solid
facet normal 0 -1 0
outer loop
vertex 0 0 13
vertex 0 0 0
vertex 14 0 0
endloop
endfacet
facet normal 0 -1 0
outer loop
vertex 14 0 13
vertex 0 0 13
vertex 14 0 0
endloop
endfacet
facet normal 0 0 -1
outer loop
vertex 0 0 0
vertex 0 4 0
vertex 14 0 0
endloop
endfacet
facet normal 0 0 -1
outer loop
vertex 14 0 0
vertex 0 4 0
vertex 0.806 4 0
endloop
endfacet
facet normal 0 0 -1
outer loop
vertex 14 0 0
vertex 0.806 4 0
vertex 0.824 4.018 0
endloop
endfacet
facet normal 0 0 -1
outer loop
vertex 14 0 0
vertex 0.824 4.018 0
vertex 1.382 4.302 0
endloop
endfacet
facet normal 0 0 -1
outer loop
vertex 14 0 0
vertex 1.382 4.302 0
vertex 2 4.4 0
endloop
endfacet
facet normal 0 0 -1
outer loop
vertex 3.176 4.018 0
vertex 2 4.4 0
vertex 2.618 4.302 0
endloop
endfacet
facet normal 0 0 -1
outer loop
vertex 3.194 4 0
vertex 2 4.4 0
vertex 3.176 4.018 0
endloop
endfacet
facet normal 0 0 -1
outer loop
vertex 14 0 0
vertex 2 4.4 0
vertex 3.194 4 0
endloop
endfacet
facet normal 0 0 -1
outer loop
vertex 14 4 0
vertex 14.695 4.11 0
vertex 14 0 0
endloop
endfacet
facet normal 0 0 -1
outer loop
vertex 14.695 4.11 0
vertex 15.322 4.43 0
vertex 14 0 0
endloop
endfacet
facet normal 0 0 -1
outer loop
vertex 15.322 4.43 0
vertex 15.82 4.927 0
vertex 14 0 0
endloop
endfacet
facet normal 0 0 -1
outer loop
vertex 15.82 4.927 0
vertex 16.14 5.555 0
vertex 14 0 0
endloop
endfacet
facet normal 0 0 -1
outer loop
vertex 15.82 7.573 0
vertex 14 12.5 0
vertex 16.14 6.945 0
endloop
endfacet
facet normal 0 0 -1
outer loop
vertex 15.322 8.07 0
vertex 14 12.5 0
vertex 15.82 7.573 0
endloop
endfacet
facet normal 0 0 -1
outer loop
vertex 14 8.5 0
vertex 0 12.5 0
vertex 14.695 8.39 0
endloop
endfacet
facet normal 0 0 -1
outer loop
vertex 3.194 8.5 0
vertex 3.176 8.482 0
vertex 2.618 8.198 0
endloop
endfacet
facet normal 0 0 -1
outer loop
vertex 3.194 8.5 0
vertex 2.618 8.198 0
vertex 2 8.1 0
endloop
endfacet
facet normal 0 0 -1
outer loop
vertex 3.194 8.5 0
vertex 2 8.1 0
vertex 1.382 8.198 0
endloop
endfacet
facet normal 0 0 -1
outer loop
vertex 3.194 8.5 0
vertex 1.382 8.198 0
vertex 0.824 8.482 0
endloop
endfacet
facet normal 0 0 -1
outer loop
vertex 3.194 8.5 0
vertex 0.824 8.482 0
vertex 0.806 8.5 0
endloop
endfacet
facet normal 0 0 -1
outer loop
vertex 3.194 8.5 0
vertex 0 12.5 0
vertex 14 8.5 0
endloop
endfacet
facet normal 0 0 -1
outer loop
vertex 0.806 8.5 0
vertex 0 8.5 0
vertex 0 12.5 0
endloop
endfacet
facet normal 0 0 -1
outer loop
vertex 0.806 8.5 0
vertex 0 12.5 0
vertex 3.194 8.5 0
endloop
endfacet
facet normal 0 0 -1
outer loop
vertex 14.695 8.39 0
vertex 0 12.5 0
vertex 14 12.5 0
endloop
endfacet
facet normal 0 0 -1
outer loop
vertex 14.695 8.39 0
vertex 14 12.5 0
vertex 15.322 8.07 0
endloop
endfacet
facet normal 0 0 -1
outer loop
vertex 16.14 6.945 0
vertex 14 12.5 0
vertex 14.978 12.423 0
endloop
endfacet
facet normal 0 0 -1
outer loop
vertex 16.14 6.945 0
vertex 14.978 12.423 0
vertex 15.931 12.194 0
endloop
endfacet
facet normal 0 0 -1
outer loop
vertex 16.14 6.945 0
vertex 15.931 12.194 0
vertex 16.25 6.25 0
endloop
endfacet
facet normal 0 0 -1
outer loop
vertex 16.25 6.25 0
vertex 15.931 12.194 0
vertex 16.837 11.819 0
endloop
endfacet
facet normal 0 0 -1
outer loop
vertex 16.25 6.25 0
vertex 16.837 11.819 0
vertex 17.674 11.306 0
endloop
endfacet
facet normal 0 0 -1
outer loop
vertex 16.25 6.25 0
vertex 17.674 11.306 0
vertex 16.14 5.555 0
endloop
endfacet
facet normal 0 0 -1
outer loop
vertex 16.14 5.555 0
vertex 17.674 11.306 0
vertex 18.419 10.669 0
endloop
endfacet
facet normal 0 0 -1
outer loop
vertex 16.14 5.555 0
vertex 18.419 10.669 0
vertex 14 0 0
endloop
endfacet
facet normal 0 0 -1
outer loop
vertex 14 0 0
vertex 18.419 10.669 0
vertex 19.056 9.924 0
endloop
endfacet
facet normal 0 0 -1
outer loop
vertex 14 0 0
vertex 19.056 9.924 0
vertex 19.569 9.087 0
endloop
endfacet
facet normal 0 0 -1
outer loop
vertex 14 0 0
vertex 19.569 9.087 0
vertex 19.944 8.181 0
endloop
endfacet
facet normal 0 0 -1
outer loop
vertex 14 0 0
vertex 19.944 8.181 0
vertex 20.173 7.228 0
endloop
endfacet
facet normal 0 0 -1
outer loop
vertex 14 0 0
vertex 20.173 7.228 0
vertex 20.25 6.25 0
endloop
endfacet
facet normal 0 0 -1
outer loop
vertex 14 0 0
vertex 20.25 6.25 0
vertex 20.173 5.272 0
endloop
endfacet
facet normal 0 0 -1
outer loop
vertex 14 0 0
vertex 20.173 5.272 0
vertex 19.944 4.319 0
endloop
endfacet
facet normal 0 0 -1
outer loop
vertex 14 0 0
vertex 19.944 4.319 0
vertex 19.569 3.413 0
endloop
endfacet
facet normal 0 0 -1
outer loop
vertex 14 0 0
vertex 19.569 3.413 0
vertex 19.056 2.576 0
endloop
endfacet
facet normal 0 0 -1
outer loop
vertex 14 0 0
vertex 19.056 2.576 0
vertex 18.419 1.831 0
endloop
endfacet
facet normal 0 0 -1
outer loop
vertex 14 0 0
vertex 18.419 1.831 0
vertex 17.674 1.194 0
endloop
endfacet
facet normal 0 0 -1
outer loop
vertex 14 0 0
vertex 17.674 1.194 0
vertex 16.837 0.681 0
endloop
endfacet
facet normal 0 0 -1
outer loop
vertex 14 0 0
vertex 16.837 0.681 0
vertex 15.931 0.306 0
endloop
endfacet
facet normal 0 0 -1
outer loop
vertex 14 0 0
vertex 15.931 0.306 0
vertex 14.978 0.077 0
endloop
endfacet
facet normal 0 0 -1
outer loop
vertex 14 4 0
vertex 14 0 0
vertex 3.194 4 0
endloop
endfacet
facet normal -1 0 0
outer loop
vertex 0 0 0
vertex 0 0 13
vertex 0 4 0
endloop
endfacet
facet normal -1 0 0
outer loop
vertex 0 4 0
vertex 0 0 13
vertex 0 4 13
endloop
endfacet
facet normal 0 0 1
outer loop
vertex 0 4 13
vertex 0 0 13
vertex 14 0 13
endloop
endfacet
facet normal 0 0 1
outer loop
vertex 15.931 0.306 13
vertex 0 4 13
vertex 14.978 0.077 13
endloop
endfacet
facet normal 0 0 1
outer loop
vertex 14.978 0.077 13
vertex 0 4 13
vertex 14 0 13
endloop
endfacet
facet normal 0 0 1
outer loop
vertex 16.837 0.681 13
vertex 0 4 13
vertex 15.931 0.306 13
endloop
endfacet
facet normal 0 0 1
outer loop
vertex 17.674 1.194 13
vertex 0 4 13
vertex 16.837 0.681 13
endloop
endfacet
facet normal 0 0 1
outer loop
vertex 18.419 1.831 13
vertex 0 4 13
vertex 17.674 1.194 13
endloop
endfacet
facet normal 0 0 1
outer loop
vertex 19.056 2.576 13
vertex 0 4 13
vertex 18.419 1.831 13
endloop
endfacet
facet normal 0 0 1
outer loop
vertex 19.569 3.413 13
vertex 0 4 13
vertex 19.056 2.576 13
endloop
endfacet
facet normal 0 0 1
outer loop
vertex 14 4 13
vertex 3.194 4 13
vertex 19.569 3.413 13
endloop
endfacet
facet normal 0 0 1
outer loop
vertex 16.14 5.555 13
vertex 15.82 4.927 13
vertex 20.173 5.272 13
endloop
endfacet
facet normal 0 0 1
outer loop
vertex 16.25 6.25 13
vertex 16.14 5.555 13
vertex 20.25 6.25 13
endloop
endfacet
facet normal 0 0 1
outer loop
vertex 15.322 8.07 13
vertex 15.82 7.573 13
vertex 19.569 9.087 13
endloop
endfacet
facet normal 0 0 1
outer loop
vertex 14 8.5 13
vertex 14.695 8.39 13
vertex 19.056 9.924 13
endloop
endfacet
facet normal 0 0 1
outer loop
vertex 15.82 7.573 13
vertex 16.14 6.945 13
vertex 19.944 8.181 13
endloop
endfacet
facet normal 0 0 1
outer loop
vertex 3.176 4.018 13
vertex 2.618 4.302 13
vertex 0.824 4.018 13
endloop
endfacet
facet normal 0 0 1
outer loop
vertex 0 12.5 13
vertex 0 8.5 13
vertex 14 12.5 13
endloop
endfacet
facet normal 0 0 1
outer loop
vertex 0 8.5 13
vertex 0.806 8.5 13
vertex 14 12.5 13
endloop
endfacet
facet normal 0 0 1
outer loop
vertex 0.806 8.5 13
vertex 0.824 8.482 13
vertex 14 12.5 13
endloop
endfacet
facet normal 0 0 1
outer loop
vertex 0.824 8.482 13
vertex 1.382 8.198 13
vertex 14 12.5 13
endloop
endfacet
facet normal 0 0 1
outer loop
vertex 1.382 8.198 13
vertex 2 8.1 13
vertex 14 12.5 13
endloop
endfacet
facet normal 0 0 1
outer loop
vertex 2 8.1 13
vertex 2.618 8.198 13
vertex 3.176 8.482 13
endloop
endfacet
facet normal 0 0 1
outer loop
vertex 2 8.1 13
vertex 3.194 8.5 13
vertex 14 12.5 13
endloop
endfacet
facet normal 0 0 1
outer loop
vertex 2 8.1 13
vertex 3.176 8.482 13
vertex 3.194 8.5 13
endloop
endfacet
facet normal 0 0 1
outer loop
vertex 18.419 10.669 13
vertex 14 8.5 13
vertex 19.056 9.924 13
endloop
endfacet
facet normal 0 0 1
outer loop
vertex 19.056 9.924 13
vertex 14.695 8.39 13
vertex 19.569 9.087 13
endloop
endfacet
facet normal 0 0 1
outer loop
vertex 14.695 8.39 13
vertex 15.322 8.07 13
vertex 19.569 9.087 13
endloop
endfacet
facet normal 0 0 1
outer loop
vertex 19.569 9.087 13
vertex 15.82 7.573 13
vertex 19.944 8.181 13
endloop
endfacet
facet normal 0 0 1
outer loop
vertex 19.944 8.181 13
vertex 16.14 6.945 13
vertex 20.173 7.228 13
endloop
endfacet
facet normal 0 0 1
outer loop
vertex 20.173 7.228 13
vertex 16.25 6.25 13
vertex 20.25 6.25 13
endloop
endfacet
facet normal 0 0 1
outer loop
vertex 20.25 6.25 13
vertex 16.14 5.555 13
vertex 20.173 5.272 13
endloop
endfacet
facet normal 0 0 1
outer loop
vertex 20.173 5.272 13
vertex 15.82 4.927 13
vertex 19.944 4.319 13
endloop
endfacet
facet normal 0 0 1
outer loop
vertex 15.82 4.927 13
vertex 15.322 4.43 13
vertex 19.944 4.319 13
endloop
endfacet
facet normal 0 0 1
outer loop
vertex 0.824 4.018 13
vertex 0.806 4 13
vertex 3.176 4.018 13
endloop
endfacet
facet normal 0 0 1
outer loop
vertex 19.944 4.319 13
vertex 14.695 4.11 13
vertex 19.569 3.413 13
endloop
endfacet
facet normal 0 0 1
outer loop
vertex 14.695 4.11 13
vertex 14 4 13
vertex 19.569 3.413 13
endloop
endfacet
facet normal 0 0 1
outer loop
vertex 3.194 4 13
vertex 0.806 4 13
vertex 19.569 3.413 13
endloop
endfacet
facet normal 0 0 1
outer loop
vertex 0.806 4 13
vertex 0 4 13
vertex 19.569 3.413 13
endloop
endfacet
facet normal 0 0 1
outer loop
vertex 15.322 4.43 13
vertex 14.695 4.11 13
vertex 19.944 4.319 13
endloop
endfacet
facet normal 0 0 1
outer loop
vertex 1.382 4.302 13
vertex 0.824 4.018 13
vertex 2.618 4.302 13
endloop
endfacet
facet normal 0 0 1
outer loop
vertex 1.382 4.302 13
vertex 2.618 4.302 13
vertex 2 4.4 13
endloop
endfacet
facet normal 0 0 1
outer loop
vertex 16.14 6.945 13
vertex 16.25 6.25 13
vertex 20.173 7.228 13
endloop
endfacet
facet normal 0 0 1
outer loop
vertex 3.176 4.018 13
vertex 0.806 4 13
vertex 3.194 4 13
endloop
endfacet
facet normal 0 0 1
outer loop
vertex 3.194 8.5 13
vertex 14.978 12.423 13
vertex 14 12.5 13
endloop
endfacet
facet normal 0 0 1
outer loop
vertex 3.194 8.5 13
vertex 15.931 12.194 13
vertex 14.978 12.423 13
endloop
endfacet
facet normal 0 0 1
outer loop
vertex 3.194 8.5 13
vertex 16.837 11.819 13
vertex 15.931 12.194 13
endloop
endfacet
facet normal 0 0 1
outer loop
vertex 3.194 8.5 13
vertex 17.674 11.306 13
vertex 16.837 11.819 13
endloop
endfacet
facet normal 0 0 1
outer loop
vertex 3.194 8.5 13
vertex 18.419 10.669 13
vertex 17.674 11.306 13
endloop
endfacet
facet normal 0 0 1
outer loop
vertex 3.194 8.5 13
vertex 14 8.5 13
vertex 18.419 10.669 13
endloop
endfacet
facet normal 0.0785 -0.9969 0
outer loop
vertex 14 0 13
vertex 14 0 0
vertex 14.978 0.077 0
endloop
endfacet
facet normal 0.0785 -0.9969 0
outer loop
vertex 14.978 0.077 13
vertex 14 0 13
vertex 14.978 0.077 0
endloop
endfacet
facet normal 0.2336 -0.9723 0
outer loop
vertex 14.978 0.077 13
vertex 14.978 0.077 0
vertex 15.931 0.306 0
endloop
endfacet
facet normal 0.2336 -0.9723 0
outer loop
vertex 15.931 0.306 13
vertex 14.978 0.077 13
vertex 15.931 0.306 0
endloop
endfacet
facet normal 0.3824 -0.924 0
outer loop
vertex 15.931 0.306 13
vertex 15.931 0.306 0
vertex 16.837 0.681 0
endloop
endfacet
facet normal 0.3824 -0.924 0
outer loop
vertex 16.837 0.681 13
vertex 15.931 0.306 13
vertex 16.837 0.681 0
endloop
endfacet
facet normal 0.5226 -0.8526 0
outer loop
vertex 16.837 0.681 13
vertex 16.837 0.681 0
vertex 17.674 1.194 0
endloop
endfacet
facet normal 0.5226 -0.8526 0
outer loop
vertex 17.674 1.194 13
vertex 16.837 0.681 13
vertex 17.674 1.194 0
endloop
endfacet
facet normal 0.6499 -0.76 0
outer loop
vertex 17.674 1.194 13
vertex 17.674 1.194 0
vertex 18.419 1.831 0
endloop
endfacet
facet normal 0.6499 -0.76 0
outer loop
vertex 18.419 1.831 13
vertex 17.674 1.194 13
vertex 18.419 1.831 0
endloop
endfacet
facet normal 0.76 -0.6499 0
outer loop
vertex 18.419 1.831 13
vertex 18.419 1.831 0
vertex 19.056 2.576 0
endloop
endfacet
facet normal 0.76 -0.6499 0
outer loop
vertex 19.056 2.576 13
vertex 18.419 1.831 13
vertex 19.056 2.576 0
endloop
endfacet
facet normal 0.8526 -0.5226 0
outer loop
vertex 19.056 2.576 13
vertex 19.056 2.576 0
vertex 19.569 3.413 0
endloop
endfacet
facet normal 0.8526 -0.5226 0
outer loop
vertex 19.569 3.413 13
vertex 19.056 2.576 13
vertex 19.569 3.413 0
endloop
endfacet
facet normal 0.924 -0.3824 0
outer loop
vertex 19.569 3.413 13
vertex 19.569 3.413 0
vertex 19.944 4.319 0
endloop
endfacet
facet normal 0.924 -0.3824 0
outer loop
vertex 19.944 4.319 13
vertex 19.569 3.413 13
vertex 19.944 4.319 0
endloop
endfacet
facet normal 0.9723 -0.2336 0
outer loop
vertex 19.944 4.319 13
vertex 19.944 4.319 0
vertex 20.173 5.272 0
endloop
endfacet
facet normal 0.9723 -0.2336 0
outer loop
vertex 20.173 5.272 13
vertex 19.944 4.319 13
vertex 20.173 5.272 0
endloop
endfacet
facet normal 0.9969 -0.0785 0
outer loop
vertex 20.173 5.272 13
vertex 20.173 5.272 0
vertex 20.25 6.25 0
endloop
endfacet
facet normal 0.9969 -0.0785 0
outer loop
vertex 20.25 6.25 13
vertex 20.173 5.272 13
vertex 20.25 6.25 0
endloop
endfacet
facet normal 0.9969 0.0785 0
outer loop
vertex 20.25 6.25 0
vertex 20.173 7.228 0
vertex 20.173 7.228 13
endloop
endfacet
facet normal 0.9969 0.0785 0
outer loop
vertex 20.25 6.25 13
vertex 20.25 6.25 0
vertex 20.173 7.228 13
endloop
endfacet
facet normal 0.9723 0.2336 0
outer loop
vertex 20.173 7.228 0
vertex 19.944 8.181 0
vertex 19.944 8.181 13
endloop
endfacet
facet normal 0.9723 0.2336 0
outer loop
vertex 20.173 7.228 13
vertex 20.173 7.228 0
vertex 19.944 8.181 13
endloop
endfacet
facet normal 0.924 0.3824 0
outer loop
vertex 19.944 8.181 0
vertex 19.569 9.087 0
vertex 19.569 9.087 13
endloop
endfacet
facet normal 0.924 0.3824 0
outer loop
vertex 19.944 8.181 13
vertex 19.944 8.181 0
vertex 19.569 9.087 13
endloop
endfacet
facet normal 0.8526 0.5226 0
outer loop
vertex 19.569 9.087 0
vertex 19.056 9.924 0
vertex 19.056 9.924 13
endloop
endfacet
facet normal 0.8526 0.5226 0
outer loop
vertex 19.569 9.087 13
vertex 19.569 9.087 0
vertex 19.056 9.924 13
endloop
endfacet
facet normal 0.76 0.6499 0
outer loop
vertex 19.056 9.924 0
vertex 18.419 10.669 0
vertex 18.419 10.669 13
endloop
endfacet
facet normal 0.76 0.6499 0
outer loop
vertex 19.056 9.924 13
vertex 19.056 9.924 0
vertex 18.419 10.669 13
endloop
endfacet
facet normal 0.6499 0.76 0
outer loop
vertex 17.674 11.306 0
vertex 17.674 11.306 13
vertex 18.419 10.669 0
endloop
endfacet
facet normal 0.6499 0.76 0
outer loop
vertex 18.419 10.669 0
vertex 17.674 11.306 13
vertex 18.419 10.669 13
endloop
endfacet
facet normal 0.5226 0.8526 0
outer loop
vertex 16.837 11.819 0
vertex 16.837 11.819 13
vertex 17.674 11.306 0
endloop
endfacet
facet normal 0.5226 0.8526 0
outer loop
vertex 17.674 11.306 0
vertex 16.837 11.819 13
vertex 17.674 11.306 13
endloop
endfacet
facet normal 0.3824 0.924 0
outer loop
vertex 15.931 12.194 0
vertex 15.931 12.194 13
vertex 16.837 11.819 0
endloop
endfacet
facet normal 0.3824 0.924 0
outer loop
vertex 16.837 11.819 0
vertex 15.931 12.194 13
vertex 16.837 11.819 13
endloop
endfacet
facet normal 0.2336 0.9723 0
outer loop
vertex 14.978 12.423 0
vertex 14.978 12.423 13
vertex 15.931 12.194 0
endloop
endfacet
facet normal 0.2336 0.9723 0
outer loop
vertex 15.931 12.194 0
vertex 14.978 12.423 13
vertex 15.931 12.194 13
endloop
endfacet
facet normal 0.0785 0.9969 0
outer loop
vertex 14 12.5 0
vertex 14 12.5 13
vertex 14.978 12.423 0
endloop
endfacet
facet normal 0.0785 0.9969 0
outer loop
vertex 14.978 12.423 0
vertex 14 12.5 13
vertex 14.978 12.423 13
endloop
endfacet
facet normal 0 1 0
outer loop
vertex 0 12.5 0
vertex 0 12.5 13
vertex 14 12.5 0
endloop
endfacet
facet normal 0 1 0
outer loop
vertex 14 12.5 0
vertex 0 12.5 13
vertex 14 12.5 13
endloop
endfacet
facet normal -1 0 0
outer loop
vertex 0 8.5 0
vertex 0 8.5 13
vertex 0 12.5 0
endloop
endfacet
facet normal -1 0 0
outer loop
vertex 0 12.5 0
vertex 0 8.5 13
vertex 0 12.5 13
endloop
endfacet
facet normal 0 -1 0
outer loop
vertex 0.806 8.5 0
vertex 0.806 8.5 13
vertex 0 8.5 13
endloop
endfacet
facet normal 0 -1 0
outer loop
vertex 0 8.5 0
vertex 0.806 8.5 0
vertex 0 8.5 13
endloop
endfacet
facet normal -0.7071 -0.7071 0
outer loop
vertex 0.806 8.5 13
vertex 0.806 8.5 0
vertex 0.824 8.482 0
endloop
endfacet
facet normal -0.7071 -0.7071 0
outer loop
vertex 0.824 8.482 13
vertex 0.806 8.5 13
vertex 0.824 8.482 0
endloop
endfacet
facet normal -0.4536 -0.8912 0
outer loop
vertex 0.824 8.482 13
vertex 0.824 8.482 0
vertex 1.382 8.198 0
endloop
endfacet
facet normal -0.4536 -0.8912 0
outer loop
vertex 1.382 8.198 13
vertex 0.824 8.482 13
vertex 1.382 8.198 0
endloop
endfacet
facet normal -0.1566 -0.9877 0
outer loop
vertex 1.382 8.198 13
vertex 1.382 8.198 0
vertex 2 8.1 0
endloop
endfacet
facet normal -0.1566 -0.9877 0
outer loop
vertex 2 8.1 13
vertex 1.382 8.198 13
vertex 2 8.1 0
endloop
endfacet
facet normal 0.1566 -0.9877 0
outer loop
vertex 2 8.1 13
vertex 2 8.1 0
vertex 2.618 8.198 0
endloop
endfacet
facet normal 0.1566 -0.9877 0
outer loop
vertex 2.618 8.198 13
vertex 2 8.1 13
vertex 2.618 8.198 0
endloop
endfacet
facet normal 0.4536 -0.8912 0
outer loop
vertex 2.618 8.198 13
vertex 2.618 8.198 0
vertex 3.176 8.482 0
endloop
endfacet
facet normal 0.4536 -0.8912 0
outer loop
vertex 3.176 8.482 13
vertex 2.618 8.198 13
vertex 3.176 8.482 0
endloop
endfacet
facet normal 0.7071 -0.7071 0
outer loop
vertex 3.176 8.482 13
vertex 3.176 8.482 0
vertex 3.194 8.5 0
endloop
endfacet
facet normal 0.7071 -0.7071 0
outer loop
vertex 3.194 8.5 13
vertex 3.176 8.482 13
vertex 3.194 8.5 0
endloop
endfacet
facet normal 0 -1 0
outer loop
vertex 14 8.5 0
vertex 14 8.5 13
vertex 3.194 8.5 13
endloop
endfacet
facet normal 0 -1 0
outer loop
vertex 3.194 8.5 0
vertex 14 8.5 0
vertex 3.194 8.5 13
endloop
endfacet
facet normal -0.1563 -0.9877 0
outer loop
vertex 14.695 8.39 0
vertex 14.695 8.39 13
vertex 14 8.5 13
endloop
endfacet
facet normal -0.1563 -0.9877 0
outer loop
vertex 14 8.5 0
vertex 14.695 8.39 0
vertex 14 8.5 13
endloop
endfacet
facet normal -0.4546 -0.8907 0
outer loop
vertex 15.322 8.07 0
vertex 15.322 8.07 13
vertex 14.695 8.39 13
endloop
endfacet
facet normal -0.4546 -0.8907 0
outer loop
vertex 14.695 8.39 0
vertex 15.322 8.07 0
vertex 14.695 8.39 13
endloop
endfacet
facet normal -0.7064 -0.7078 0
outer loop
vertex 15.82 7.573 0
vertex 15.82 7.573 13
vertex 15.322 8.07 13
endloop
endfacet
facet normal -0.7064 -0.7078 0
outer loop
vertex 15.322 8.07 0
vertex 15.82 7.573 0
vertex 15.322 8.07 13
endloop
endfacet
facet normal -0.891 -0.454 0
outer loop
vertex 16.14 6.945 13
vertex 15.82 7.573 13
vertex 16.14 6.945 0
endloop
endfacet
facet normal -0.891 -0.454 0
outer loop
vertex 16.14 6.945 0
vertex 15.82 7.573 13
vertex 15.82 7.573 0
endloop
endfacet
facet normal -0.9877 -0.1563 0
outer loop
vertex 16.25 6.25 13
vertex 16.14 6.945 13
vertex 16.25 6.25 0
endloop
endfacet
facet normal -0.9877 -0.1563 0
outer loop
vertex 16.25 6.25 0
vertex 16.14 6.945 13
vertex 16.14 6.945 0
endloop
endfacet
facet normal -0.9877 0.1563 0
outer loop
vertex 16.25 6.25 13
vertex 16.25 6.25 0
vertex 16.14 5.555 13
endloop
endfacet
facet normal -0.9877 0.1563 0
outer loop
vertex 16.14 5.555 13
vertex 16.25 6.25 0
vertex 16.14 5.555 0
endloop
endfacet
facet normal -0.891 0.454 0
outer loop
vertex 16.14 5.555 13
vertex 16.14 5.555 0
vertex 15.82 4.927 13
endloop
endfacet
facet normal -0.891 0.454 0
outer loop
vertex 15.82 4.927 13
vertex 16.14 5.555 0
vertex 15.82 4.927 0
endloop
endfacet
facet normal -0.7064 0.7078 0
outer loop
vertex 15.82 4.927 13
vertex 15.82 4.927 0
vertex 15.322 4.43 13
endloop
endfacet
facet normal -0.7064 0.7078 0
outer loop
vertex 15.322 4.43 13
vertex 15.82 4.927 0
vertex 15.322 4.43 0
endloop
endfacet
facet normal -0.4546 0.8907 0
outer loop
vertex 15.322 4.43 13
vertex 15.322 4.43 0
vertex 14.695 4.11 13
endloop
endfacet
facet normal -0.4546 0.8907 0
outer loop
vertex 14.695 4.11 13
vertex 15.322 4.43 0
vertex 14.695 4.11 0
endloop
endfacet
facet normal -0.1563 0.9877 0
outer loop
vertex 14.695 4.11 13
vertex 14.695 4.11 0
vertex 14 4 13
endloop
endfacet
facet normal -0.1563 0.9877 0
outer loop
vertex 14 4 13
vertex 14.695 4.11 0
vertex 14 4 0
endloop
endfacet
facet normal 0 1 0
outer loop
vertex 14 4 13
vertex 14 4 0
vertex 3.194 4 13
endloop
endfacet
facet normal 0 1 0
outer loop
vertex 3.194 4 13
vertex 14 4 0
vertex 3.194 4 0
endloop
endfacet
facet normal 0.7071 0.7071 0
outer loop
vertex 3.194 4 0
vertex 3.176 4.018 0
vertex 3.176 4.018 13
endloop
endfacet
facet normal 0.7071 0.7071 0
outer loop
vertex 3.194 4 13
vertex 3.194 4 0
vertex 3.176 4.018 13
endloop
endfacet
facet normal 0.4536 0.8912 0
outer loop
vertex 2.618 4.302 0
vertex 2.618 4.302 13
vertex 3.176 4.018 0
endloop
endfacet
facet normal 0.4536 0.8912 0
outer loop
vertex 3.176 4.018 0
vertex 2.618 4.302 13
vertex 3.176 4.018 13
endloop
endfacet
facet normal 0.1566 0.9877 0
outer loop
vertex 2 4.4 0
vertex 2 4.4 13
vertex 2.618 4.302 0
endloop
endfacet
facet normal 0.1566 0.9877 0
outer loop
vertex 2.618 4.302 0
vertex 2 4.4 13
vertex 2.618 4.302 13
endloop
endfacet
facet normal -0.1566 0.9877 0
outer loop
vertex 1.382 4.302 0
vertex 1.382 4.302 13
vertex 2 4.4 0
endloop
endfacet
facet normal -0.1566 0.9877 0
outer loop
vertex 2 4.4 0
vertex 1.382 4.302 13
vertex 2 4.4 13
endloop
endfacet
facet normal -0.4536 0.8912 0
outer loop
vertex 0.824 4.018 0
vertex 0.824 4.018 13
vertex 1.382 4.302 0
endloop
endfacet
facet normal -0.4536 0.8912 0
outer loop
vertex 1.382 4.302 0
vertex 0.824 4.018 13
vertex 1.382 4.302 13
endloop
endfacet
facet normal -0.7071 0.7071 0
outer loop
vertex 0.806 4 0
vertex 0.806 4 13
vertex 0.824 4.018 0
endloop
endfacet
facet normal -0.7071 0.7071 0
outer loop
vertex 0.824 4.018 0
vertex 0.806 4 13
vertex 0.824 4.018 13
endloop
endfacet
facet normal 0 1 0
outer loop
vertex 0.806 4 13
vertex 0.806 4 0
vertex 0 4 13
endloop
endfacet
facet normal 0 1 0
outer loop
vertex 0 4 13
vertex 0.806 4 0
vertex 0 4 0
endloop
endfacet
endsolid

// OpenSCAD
hole=4.5;
material=4;
lenght=14;
width=13;
radius=(hole+2*material)/2;

module clip(){
difference(){
hull(){
cube([lenght,hole+2*material,width]);
translate([lenght,radius])cylinder(r=radius,h=width, $fn=40);
}
hull(){
translate([0,material])cube([lenght,hole,width]);
translate([lenght,hole/2+material])cylinder(r=hole/2,h=width,$fn=20);

}

}
//pads
translate([material/2,material/2+0.4])cylinder(r=material/2,h=width,$fn=20);

translate([material/2,material + material/2 + hole-0.4])cylinder(r=material/2,h=width,$fn=20);
}


clip();
